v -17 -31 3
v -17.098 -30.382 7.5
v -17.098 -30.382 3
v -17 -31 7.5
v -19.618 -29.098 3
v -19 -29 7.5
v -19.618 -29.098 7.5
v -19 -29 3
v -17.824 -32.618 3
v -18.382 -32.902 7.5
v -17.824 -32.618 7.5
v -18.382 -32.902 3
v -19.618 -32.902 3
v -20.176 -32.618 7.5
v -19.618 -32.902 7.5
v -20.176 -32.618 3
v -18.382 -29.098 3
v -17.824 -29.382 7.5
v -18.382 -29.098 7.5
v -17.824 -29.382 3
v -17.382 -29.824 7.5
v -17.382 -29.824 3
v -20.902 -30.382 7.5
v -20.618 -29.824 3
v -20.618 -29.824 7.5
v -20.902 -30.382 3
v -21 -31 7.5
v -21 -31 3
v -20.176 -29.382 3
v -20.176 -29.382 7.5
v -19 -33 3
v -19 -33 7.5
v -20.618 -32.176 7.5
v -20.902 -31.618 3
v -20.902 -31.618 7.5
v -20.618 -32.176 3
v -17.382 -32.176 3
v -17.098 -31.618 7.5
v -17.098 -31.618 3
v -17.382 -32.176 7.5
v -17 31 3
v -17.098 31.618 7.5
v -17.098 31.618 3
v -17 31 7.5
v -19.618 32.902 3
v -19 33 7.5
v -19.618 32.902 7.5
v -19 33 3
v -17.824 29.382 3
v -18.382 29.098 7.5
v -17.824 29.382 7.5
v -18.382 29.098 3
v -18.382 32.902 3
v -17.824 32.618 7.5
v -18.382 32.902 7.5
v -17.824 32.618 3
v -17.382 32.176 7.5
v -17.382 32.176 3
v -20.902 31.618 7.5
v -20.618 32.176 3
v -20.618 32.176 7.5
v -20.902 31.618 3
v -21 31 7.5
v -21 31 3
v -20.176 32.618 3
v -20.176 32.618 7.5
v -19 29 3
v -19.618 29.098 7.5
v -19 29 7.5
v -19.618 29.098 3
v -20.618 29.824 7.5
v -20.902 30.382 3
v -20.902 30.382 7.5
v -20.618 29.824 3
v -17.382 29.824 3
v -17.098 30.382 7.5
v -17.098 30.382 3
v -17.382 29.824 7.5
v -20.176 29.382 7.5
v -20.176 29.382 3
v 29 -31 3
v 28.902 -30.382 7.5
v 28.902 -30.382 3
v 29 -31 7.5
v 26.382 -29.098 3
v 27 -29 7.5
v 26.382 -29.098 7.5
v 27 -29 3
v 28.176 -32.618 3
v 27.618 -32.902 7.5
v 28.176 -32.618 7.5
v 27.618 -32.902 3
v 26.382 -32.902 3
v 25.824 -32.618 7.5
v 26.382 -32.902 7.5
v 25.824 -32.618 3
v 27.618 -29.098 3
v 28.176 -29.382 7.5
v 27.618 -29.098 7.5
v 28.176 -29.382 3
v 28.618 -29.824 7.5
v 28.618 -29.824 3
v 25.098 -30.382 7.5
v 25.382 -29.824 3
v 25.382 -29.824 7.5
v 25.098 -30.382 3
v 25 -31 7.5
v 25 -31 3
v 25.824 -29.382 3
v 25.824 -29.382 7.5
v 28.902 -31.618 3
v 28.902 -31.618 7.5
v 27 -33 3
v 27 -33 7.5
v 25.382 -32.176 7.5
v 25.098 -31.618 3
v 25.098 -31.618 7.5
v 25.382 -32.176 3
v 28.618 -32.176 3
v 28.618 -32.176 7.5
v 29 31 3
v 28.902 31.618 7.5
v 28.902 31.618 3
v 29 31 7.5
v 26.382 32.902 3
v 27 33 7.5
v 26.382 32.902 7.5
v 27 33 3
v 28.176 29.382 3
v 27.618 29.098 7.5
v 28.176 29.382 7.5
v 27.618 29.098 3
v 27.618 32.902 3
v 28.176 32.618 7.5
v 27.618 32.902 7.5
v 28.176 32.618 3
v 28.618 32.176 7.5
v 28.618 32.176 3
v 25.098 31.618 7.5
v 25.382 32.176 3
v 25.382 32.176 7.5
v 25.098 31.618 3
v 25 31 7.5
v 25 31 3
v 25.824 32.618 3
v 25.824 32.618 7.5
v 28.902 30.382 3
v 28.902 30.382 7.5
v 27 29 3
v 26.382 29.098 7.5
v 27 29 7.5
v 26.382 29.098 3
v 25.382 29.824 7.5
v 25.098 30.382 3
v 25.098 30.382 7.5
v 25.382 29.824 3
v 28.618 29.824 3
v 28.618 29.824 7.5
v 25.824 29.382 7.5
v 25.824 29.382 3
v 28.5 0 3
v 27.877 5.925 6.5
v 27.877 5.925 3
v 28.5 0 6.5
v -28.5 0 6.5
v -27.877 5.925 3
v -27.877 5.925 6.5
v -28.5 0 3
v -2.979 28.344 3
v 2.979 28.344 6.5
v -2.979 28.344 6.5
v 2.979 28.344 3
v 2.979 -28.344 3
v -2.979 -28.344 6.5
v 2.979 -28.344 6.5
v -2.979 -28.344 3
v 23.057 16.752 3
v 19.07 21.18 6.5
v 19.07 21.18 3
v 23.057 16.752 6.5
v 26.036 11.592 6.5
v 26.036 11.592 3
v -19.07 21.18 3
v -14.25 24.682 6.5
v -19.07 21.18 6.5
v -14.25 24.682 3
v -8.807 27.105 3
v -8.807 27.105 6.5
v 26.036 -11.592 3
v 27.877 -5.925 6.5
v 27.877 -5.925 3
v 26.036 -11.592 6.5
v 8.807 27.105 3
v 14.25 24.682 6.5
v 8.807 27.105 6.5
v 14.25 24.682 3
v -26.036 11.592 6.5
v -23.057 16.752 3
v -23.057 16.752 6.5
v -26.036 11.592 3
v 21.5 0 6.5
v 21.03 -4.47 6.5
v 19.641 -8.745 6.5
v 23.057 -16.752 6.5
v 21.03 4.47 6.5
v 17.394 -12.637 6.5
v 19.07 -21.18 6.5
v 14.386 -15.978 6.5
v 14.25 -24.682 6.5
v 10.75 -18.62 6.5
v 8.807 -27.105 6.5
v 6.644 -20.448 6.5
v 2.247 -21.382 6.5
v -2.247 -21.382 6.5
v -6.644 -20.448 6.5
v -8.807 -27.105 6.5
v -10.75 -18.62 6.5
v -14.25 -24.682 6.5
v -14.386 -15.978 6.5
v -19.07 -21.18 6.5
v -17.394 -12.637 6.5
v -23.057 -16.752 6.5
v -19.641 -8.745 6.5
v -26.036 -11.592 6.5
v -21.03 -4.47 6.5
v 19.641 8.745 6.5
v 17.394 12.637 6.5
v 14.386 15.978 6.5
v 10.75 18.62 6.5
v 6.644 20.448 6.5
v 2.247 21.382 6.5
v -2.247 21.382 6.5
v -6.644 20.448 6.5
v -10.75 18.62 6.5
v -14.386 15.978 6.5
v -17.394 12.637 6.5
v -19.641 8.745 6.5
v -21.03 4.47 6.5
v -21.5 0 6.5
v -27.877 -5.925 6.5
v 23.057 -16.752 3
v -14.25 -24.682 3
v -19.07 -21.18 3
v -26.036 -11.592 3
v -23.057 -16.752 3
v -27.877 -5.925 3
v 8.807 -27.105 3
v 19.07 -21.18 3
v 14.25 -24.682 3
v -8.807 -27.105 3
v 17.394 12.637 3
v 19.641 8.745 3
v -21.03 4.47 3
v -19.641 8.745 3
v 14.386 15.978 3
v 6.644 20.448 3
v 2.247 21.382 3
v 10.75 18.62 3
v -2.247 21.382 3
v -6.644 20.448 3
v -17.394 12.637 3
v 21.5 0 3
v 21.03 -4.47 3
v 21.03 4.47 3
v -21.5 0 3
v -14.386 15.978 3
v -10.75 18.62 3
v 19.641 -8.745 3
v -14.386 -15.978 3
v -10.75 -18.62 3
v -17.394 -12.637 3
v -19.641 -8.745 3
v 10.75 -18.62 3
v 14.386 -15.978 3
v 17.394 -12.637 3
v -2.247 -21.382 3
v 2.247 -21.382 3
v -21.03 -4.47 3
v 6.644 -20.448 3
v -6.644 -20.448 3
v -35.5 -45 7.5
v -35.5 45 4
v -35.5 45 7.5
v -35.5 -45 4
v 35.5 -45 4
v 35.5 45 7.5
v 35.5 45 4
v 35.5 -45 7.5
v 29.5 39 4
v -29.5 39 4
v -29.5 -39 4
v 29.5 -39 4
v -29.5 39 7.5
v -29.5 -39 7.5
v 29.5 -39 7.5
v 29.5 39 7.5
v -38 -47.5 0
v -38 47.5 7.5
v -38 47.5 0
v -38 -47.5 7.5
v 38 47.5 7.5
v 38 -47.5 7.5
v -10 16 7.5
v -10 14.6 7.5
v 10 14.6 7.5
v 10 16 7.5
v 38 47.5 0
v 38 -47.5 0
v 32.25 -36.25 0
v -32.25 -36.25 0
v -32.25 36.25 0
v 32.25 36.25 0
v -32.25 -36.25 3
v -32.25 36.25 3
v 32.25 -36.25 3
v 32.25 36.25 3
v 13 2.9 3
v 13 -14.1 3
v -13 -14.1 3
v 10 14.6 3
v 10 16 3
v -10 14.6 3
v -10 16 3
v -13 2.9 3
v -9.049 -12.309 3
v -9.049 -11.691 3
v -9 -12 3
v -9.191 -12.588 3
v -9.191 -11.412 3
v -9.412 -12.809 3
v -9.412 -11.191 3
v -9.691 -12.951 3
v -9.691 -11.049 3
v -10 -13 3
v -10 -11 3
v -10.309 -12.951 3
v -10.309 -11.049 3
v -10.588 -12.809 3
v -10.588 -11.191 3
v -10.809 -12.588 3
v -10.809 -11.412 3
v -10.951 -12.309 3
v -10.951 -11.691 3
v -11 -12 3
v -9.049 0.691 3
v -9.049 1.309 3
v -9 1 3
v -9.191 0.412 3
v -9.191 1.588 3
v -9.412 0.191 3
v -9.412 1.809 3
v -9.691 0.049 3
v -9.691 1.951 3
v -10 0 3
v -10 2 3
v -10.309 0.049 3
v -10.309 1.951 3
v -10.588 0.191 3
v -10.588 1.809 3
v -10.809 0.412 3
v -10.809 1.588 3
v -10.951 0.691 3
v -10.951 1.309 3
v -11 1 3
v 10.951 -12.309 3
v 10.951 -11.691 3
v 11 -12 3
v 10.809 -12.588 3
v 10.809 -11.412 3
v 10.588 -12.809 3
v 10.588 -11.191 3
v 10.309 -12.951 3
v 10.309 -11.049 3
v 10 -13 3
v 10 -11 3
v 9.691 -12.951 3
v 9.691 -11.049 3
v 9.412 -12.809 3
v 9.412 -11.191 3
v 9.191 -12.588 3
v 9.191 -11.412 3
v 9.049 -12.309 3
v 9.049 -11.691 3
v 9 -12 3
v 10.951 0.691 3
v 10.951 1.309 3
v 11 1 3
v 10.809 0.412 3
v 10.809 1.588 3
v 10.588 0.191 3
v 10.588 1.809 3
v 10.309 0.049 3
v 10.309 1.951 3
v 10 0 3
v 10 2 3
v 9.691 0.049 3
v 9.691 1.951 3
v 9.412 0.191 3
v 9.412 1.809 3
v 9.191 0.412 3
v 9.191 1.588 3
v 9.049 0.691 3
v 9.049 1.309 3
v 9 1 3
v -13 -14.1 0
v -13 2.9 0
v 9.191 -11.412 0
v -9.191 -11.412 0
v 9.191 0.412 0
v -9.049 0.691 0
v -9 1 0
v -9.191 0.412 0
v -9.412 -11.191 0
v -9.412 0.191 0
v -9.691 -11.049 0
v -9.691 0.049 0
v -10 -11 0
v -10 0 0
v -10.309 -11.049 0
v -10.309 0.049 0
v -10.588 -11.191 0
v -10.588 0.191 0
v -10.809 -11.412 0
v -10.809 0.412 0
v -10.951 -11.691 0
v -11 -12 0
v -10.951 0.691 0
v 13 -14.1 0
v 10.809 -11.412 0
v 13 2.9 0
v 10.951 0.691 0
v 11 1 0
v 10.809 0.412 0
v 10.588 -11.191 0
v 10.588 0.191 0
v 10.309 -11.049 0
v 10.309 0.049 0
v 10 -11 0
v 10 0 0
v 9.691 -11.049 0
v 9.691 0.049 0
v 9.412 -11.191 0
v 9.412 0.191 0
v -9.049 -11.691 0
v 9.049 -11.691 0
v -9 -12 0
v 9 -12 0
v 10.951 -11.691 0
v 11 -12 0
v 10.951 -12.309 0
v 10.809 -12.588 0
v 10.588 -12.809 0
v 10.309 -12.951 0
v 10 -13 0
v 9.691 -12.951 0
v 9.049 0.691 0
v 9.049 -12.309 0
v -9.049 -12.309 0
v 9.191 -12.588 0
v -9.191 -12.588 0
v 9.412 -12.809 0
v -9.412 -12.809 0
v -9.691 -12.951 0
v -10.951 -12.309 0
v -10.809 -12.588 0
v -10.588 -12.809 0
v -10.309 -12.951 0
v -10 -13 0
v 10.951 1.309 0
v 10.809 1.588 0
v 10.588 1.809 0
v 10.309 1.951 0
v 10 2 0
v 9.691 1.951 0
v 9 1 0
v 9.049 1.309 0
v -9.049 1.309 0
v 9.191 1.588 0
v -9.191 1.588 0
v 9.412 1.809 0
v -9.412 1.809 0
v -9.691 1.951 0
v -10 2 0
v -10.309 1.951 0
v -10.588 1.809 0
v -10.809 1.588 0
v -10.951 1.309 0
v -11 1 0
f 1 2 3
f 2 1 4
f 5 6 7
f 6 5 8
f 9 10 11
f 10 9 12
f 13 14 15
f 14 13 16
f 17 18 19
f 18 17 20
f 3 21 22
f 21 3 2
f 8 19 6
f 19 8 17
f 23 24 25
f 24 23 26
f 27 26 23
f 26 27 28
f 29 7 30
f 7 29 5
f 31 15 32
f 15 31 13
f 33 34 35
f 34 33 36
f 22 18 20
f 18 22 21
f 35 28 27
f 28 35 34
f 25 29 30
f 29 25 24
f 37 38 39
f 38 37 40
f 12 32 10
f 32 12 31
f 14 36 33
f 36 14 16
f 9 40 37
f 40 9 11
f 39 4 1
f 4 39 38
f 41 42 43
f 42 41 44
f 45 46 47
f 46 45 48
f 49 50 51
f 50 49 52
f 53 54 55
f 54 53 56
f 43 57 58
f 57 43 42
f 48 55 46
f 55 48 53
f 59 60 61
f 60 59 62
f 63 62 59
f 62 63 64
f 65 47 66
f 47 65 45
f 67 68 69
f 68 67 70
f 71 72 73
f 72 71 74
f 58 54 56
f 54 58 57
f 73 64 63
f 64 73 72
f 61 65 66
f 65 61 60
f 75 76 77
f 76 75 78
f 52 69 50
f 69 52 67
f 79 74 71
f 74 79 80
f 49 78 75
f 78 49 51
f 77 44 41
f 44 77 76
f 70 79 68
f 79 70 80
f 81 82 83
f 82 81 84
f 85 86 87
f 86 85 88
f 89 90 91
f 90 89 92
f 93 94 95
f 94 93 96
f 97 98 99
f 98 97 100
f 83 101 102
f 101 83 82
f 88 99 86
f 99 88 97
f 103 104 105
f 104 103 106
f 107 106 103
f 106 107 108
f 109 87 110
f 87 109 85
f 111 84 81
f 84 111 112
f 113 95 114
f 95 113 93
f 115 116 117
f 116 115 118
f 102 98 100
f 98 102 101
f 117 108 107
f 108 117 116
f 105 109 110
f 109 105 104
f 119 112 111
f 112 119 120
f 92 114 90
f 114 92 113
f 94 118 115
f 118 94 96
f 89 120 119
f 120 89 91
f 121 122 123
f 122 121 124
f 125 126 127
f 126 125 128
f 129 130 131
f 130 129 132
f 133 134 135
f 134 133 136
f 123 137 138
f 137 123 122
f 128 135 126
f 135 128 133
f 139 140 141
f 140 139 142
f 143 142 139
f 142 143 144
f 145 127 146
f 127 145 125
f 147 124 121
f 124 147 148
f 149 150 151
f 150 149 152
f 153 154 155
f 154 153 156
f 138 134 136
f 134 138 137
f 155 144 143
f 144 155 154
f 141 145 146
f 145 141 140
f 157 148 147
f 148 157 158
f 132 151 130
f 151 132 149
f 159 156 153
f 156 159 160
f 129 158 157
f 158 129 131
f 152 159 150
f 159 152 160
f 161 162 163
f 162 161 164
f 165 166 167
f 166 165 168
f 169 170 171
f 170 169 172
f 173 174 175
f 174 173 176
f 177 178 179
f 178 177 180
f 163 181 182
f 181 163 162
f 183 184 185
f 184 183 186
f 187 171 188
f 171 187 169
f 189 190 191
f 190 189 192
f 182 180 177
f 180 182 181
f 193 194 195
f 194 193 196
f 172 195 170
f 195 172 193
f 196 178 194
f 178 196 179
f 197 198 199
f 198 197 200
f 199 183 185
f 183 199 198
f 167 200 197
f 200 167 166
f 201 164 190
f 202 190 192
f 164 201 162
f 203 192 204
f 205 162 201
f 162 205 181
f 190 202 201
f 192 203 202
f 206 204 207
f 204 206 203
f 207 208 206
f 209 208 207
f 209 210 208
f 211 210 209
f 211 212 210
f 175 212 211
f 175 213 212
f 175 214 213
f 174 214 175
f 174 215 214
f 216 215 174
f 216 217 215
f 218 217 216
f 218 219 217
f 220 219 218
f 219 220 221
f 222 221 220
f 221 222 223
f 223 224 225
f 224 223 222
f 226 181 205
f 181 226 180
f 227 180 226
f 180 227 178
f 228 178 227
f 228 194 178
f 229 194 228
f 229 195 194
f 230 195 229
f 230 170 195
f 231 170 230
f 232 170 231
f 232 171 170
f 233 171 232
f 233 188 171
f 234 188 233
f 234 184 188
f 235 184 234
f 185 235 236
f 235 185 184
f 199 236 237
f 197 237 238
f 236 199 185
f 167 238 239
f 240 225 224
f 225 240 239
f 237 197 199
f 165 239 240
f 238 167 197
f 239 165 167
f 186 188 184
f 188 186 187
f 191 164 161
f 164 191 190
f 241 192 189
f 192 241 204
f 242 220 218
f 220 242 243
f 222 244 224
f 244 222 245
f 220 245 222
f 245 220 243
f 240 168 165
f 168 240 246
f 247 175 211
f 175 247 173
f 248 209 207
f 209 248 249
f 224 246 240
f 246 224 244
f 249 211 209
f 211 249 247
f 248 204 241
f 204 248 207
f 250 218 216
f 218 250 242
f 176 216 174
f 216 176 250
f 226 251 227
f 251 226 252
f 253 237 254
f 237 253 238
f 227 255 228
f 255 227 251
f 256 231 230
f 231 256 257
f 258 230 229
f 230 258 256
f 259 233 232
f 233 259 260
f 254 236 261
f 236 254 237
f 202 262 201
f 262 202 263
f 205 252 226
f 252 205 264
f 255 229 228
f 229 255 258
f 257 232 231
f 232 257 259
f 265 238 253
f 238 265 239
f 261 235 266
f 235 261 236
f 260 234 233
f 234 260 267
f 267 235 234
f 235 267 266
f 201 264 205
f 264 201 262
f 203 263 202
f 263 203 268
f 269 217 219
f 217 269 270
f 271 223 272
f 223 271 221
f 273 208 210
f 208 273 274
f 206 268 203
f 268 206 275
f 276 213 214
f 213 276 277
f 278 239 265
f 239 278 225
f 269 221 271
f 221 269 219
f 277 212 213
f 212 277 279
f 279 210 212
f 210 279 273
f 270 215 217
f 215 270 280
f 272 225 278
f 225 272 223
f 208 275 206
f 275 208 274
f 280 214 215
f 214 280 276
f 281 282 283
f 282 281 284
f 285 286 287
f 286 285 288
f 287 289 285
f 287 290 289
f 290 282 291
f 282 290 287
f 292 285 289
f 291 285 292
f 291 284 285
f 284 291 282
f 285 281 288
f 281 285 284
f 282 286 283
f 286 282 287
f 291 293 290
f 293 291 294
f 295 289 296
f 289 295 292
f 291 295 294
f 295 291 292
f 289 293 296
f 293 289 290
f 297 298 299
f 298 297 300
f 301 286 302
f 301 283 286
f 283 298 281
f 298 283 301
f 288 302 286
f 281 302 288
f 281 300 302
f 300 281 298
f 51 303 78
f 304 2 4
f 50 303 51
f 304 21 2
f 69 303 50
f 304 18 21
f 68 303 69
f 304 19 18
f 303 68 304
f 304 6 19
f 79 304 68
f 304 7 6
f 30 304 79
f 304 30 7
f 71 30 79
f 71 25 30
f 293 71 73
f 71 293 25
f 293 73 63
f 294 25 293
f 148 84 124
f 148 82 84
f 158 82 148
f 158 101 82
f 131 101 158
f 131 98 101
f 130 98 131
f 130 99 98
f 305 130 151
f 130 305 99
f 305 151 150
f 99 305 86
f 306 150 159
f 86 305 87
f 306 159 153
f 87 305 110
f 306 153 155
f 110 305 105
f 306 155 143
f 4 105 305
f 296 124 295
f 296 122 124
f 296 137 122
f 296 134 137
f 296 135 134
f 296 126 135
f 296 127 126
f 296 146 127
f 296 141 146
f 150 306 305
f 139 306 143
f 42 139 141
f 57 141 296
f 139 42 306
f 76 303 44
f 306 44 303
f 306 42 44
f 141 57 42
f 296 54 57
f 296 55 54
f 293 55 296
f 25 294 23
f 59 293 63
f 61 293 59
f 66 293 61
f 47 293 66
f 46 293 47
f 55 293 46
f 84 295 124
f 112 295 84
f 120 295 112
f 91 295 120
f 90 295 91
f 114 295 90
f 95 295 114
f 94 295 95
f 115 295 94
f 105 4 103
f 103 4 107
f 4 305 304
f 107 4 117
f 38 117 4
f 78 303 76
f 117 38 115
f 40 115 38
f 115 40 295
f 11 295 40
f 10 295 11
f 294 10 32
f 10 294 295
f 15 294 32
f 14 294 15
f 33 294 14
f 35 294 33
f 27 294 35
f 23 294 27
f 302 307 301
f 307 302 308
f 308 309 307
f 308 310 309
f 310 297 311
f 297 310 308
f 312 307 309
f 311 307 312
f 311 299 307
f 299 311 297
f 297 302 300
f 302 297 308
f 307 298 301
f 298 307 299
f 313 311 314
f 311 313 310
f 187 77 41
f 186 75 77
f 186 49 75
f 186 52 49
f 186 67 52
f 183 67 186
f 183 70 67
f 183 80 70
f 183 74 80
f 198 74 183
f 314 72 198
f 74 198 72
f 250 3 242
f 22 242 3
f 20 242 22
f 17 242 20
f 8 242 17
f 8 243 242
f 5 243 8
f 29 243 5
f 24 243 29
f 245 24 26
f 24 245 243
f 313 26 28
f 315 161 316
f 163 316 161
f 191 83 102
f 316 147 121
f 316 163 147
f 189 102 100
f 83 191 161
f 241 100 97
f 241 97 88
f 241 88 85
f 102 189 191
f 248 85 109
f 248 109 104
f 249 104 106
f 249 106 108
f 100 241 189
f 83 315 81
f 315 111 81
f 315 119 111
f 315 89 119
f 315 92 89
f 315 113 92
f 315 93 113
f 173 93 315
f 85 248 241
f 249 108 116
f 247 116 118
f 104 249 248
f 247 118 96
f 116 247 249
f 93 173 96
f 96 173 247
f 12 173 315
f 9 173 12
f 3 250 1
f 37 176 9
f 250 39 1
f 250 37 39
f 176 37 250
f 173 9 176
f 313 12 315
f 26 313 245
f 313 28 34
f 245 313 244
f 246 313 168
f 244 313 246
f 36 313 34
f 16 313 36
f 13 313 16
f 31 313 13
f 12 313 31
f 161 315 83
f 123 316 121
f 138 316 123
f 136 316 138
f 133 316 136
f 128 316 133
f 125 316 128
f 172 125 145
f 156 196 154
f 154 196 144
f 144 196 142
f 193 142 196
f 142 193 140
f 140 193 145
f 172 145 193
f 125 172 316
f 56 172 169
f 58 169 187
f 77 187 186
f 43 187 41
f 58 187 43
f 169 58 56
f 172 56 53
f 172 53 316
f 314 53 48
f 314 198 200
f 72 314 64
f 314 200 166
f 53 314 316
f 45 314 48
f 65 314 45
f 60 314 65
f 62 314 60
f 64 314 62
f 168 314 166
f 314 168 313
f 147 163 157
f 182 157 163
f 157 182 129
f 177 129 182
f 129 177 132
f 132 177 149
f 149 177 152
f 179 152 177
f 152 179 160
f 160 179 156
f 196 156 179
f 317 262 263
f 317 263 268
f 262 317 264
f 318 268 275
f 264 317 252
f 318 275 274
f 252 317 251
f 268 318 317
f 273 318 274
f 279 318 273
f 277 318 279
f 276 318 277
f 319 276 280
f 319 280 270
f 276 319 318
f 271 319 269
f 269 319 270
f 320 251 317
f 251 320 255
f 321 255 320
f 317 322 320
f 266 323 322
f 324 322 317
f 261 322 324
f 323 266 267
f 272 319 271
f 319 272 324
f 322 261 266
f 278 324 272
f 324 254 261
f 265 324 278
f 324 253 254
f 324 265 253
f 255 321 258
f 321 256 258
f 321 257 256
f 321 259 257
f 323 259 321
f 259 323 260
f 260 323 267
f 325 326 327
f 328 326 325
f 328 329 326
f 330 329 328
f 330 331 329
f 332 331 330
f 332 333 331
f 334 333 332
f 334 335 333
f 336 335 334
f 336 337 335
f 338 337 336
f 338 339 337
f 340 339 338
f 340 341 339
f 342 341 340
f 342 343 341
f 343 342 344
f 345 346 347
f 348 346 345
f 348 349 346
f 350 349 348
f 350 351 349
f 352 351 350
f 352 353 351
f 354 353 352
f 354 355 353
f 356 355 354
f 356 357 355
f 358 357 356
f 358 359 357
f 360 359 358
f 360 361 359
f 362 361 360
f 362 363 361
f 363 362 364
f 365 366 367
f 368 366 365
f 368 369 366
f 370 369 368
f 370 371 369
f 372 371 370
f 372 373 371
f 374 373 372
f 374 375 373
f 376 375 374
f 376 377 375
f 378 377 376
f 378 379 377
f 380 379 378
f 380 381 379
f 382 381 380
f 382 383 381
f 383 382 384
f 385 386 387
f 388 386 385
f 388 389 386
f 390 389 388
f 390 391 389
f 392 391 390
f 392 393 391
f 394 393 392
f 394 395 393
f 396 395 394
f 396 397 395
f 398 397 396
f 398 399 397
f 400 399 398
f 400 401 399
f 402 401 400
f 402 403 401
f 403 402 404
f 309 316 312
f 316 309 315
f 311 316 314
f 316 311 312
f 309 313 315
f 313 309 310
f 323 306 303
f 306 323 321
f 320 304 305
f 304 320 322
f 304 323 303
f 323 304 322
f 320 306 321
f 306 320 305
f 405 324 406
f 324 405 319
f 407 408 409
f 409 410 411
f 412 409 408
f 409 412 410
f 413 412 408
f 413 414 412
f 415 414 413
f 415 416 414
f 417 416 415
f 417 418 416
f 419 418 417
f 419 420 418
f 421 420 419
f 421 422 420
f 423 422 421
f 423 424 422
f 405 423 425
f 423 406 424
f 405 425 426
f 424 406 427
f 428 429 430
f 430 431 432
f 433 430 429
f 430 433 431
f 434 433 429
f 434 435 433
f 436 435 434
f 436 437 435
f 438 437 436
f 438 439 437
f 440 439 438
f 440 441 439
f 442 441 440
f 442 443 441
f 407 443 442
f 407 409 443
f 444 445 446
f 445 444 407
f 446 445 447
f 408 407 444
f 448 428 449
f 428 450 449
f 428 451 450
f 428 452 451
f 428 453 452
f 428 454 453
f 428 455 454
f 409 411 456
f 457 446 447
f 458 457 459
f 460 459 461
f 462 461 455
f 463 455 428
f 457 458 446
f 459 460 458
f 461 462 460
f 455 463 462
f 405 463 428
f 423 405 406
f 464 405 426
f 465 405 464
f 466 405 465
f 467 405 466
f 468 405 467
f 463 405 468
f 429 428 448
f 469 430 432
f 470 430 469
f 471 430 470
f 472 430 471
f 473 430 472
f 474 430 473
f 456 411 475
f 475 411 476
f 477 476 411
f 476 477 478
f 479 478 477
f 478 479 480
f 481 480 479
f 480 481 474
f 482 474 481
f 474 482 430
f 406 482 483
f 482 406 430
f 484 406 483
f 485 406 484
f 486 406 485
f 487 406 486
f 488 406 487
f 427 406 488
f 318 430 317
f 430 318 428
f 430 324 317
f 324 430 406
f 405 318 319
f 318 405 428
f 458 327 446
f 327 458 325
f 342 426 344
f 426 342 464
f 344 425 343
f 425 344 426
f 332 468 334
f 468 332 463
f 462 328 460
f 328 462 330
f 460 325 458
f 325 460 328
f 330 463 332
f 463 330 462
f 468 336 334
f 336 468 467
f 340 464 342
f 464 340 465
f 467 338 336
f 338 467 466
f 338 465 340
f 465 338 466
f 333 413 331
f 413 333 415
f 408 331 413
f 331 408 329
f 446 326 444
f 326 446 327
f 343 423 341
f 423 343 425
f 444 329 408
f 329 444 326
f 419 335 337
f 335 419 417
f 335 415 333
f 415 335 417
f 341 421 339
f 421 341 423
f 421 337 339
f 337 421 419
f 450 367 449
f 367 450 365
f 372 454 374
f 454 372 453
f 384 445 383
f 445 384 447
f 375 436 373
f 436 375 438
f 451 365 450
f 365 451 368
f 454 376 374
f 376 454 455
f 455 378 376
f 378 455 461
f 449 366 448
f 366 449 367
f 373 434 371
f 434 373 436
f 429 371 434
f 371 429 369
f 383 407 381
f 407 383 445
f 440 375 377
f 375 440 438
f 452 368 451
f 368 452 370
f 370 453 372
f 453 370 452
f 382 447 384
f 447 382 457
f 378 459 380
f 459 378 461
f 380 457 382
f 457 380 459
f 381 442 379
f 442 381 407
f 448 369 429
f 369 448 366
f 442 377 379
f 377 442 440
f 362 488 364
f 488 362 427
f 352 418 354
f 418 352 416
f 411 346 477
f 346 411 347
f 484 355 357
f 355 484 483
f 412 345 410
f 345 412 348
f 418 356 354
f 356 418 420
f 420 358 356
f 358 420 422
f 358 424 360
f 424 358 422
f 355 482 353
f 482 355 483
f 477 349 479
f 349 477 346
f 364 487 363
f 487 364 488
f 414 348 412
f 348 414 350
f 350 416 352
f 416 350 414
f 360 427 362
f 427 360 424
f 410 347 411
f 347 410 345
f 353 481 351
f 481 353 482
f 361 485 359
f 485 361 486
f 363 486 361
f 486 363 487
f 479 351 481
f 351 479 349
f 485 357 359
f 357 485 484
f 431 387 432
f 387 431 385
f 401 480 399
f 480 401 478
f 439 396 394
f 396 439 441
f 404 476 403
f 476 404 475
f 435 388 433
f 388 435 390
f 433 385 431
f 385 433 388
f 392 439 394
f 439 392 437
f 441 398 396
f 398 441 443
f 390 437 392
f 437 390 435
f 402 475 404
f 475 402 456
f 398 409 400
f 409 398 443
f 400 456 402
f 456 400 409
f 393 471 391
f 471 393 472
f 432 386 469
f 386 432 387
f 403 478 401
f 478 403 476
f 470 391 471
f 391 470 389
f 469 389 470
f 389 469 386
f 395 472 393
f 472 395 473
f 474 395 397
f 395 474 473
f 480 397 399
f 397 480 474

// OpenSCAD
// file: alsaCam.scad
//creaAlsaCamara(5);
alsaCamTorR = 1;

// creaAlsaCamara(10);

module creaAlsaCamara( intAlsaCamH )
{    
    difference(){

        translate([-13,-2.9,0])
        cube([26,17,intAlsaCamH]);

        //Tornillos camara
        translate([-10,12,-0.1])
        cylinder(r=alsaCamTorR,intAlsaCamH+0.4,$fn=20);
        translate([10,12,-0.1])
        cylinder(r=alsaCamTorR,intAlsaCamH+0.4,$fn=20);
        translate([-10,-1,-0.1])
        cylinder(r=alsaCamTorR,intAlsaCamH+0.4,$fn=20);
        translate([10,-1,-0.1])
        cylinder(r=alsaCamTorR,intAlsaCamH+0.4,$fn=20);

    }
}
// file: ../../Letras.scad
if(0)
{
logo(10,2,2,4);
}

//dMin(10,2,2);
module dMin(iSize,iPared,iH)
{
    translate([iPared*1.59,0,0])
    {
    cMin(iSize*.53,iPared*.53,iH);
    translate([iPared*.75,0,0])
    cube([iPared,iSize,iH]);
    }
}

module tMin(iSize,iPared,iH)
{
  iSize = iSize*0.9;
  translate([0,iSize*.1,0])
  {
  difference()
  {
    hull()
    {
      translate([-iPared*.7,0,0])
      cube([iPared,iSize*1,iH]);

      cube([iSize*.4,iPared,iH]);

      translate([-iPared*.3,0,0])
      cylinder( r=(iPared*0.6), iH, $fn=100 );     
    }
    
    translate([iPared,iPared,-0.1])
    hull()
    {
      translate([-iPared*.7,0,0])
      cube([iPared,iSize*1,iH]);

      cube([iSize*.4,iPared,iH]);

      translate([-iPared*.35,0,0])
      cylinder( r=(iPared*0.6), iH+2, $fn=100 );     
    }
    
    translate([iSize*.28,-iSize*.4,-0.1])
    cube([iSize,iSize,iH+2]);
    
  }
  
  translate([-(iSize*.35),iSize*.6,0])
  cube([iSize*.6,iPared,iH]);
  
  }
        
}


module eLe(iSize,iPared,iH)
{
    translate([-iPared*.7,0,0])
    cube([iPared,iSize*1,iH]);
    
    cube([iSize*.4,iPared,iH]);
}

module hMin(iSize,iPared,iH)
{
    puente(iSize,iPared,iH);
    
    translate([-iPared*.7,0,0])
    cube([iPared*.85,iSize*1,iH]);
   
}

module nMin(iSize,iPared,iH)
{
    puente(iSize,iPared,iH);
    
    translate([-iPared*.7,0,0])
    cube([iPared*.85,iSize*.57,iH]);
   
}

module cMin(iSize,iPared,intcH)
{
    translate([0,iSize*0.6,0])
    {
    difference()
    {
        oMin(iSize, intcH);
        
        translate([0,-iPared*1.15,-0.1])
        cube([iSize*.8,iPared*2.2,intcH+1]);
    }
    }
}




module Te(iSize, iPared)
{
    translate([-(iPared*1/2),0,0])
    cube( [iPared*1, iSize, leth] );
    
    translate([-(iSize*0.8)/2,iSize-iPared*1,0])
    cube( [iSize*0.8,iPared*1, leth] );
}

module oMin(intoSize, intoH)
{
  difference()
  {
    cylinder( r=(intoSize*0.6), intoH, $fn=100 );
    
    translate([0,0,-0.1])
    cylinder( r=(intoSize*0.3), intoH*2, $fn=100 );
    //cylinder( r=(iSize/2)-iPared, iH+1, $fn=100 );
  }
}



module eMin(iSize,iPared,inteH)
{
    rotate([0,0,10])
    translate([0,iSize*0.0,0])
    {
    difference()
    {
        translate()
        cMin(iSize, iPared*1.8, inteH);
        
        translate([0,-iPared*1.3,-0.1])
        cube([iSize*.8,iPared,inteH+1]);
    }
    
    rotate([0,0,15])
    translate([-iSize*.15,iPared*4,0])
    cube([iSize*.9,iPared*3.5,inteH]);
    }
}

module De(iSize,iPared,iH)
{
  translate([0, iSize/2, 0])
  difference()
  {
      mediaLuna(iSize, iH);
      
      translate([-(iSize*0.08), 0, -0.5])
      mediaLuna(iSize*0.8, iH+1);
  }
  
  translate([0,iPared*.2,0])
  cube([iPared*.8, iSize*.9, iH]);
}


module mediaLuna(iSize, iH)
{
  difference()
  {
    cylinder( r=iSize/2, iH, $fn=100 );
      
    translate([-iSize, -iSize/2, -0.1])
    cube(iSize,iSize,iH);
  }
}

module puente(iSize,iPared,iH)
{
    
    difference()
    {
        
    hull()//Exterior
    {
        translate([iSize*0.37,iSize*0.45,0])
        cylinder(r=iPared*.5,iH,$fn=50);
        
        cube([iSize*0.45,iSize*0.51,iH]);
    }
    
    translate([-iPared*.8,-iPared*.8,-0.1])
    hull()//Interior
    {
        translate([iSize*0.42,iSize*0.5,0])
        cylinder(r=iPared*.3,iH,$fn=50);
        
        cube([iSize*0.47,iSize*0.47,iH+1]);
    }
    
    }
}

module oCua(iSize,iH)
{
    cube([iSize*0.4,iSize*0.4,iH]);
    
    translate([iSize*0.5,0,0])
    difference()
    {
        cube([iSize*0.15,iSize*0.6,iH]);
        
        translate([-iSize*0.15,-iSize*0.11,-0.1])
        rotate([0,0,-45])
        cube([iSize*0.25,iSize*0.6,iH*2]);
        
        
        translate([-iSize*0.35,iSize*0.45,-0.1])
        rotate([0,0,-45])
        cube([iSize*0.25,iSize*0.6,iH*2]);
    }
    
    translate([-iSize*.05,iSize*0.06,0])
    difference()
    {
        translate([-iSize*.1,iSize*.445,0])
        cube([iSize*.8,iSize*0.15,iH]);
        
        translate([iSize*0.3,iSize*0.3,-0.1])
        rotate([0,0,-45])
        cube([iSize*0.25,iSize*0.6,iH*2]);
        
        translate([-iSize*0.28,iSize*0.45,-0.1])
        rotate([0,0,-45])
        cube([iSize*0.25,iSize*0.6,iH*2]);

    }
    
    
    
    
}

module logoSimple(letsize,letpared,leth,letoffset)
{
    //De(letsize,letpared,leth);
    dMin(letsize,letpared,leth);
    
    translate([(letsize*0.59)+(1*letoffset),letsize*0,0])
    oCua(letsize,leth);
    
    translate([(letsize*1.5)+(2*letoffset),0,0])
    tMin(letsize,letpared*.8,leth);   
    
    translate([(letsize*2.1)+(3*letoffset),0,0])
    eMin(letsize*.53,letpared*.3,leth);
    
    translate([(letsize*2.8)+(4*letoffset),0,0])
    cMin(letsize*.53,letpared*.53,leth);
    
    translate([(letsize*3.3)+(5*letoffset),0,0])
    hMin(letsize,letpared,leth);

    
}

module logo(letsize,letpared,leth,letoffset)
{
    //De(letsize,letpared,leth);
    dMin(letsize,letpared,leth);
    
    translate([(letsize*0.59)+(1*letoffset),letsize*0,0])
    oCua(letsize,leth);
    
    translate([(letsize*1.5)+(2*letoffset),0,0])
    tMin(letsize,letpared*.8,leth);   
    
    translate([(letsize*2.1)+(3*letoffset),0,0])
    eMin(letsize*.53,letpared*.3,leth);
    
    translate([(letsize*2.8)+(4*letoffset),0,0])
    cMin(letsize*.53,letpared*.53,leth);
    
    translate([(letsize*3.3)+(5*letoffset),0,0])
    hMin(letsize,letpared,leth);
    
    translate([(letsize*4)+(6*letoffset),leth*.75,0])
    cylinder(r=letpared*.75,leth,$fn=50);
    
    translate([(letsize*4.45)+(7*letoffset),0,0])
    nMin(letsize,letpared,leth);
    
    translate([(letsize*5.3)+(8*letoffset),0,0])
    eMin(letsize*.5,letpared*.3,leth);
    
    translate([(letsize*5.85)+(9*letoffset),0,0])
    tMin(letsize,letpared*.8,leth);

    
}
// file: Frame.scad
include <Diffracter.scad>

frameW = 80-1.5;//Real hole width - burr
frameH = 75-1.5;//Real hole height - burr
frameD = 2.5;

winW = frameW - 8;
winH = frameH - 16;

slideW = winW + 4;
slideH = winH + 10;
slideD = 0.8;

//Activate this to display
if(false)
{
  Frame();
}

module Frame()
{
difference()
{

  translate([-frameW/2,-frameH/2,0])
  cube([frameW,frameH,frameD]);

  //areaSello();
  translate([-winW/2,-winH/2,-0.1])
  cube([winW,winH,frameD*2]);

  translate([-slideW/2,-slideH/2,frameD-slideD])
  cube([slideW,slideH,2]);

}
}


module areaSello()
{
  //cylinder(r=(raspSellR/2)-1,frameD);

  translate([-(frameW)/2,-(frameH)/2,0])
  cube([frameW,frameH,frameD]);
}
// file: Diffracter.scad
//include <Tapa.scad>
include <../../library.scad>


bigW = 88;
ori = bigW/2;
raspSellR = 59;
tuboH = 140;
H = 18.5 + 9;
selloH = 7;
tornR = 2;

huecoPared = 12;
huecoH = 22;
selloHembraRadio=40;

//Activate this to display
if(0)
{
//translate([0,0,bigW/2])
//rotate([0,90,0])
diffracter();


//soporteCylinder(radio=25.2,altura=3.8);

}


module diffracter(){	

difference(){

//Bloque
translate([-bigW/2,-bigW/2,0])
cube([bigW,bigW,H]);

/*
translate([
						-(bigW-huecoPared)/2,
						-(bigW-huecoPared)/2,
						(huecoH/2)
					])
		cube([
					bigW-huecoPared,
					bigW-huecoPared,
					H-huecoH]
				);*/


//Diffractador
translate([-37.25,-40,-0.1])
cube([74.5,80,5.6]);

//Macro
translate([0,0,5.4])
cylinder(r=(74.5/2),8.2,$fn=100);

//Sello de raspberry
//translate([0,0,-0.1])
//cylinder(r=(raspSellR/2)+1,2);

//Tubo
//translate([0,0,-0.1])
//cylinder(r=(52/2),200);

//Tornillos abajo
translate([-ori+4,-ori+4,-0.1])
cylinder(r=tornR,20);
translate([ori-4,-ori+4,-0.1])
cylinder(r=tornR,20);
translate([-ori+4,ori-4,-0.1])
cylinder(r=tornR,20);
translate([ori-4,ori-4,-0.1])
cylinder(r=tornR,20);

//Hueco
cylinder(r=36,H+1);

//Tornillos caja
translate([0,0,(tuboH/2)-7])
rotate([0,90,0])
tornillosArriba();

//Tornillo tripie
translate([-ori-0.1,0,(tuboH/2)+7])
rotate([0,90,0])
cylinder(r=5/2,5.31);

//Sello hembra
//translate([0,0,H-3])
//cylinder(r=selloHembraRadio,4);

}

//Sello cobertura
//translate([0,0,H-1])
//huyoMasPared(58,3,3);


}
// file: Camara.scad
include <Sello35GradosCorto.scad>
include <alsaCam.scad>
include <../../library.scad>


camaraPared  = 8;

tuboSellDiam = 52+3;//52mm+2 holgura
tuboSellR = tuboSellDiam / 2;
tuboSellP = 3.5;//Profundidad del sello


camCableX = 1.4;
camCableY = 20;

if( 0 )
{
    creaCamBase();
}


module creaCamBase()
{
    difference()
    {
        //Pared
        translate([-(bigW-2)/2,-(bigW-2)/2,0])
        cube( [(bigW-2),(bigW-2),camaraPared] );
        
        //Sello hembra
        translate([0,0,camaraPared-4])
        huyoMasPared(68,7,4.2,$fn=100);
        //Ahorro de material
        translate([0,0,camaraPared-4])
        huyoMasPared(42,11,4.2);
        
        //Pasa cable
        pasaCable();
        
        //Tornillos
        tornPass();
        
        
    }
    
    //translate([0,0,10])
    creaAlsaCamara( 25 );
}

module pasaCable()
{
    //Pasa cable
    rotate([0,0,90])
    translate([-15, -camCableY/2, -0.1])
    cube( [camCableX, camCableY, 20] );
}
// file: ../../library.scad
module tubo(
	h/*Altura*/,
	w/*Pared*/,
	d/*Diametro*/
){
  difference()
  {
    cylinder(r=(d/2), h);
    translate([0,0,-0.1])
    cylinder(r=(d/2)-(2*w), h+0.2);
  }
}

module huyoMasPared(
	d/*Diametro del hoyo*/,
	w/*Pared*/,
	h/*Altura*/,
){
  difference()
  {
    cylinder(r=((d+(2*w))/2), h);
    translate([0,0,-0.1])
    cylinder(r=(d/2), h+0.2);
  }
}

module cuboMasPared(
    w1, //Largo
    w2, //Ancho
    p1, //Pared
    p2, //Pared
    h   //Alto
)
{    
    difference()
    {
        translate([-(w1+(p1*2))/2,-(w2+(p2*2))/2,0])
        cube([(w1+(p1*2)),(w2+(p2*2)),h]);
        
        translate([-w1/2,-w2/2,-0.2])
        cube([w1,w2,h*2]);
        
    }
    
    
}

soporteW = 0.7;

module soporteCylinder()
{
  difference()
  {
	cylinder(r=radio,altura);

	translate([0,0,-0.1])
	cylinder(r=radio-soporteW,altura+0.2);
  }

  if(true){
  difference()
  {
	cylinder(r=radio+0.75,1);

	translate([0,0,-0.1])
	cylinder(r=radio-0.75,1.25);
  }}

}

module soporteOval()
{
  difference()
  {
	oval(w=ancho, h=largo, height=alto, center = false);

	translate([0,0,-0.1])
	oval(ancho-soporteW, largo, alto+0.2);
  }

  difference()
  {
	oval(w=ancho+1, h=largo+1, height=1, center = false);

	translate([0,0,-0.1])
	oval(w=ancho-1, h=largo-1, height=1.25, center = false);
  }

}


module oval(w,h, height, center = false)
{
  scale([1, h/w, 1]) cylinder(h=height, r=w, center=center);
}
// file: Sello35GradosCorto.scad
include <Diffracter.scad>
include <Frame.scad>
include <../../library.scad>

include <../../Letras.scad>

// 3.15° for every 100 l/mm

angulo = 35;

coberW = bigW+6;
coberH = 6;
coberOffset = 9;//Posición del tubo
coberOffset2 = 5;//Altura del tubo (-7)->(-8)
cobeSellH = 4;
cobeSellW1 = 7;
cobeSellW2 = 7;

torrRadio = 2;
conoRadio = 38.8;

camCubeW = 62;
camCubeH = 70;
camCubeD = 7;



//soporteCylinder(radio=29,altura=coberH);	
//soporteOval(ancho=28, largo=25, alto=coberH);
//soporteCylinder(radio=34,altura=coberH);
//frameSello();

if(false)
{
    translate([0,coberW/2,0])
    creaSello();
    
    
}

// translate([33,25,cobeSellH+1.1])
// %cube([40,40,1]);


module creaCamBase()
{
    difference()
    {
        //Pared
        cube( [camCubeW,camCubeH,camCubeD] );
        
        //Tornillos
        tornillosBaseCamara( camCubeD + 0.4 );
        
    }
}

module tornillosBaseCamara( intBaseCamTorH )
{
    translate( [12,4,-0.2] )
    huecoParaTornillo(intBaseCamTorH);        
    translate( [12,camCubeH-4,-0.2] )
    huecoParaTornillo(intBaseCamTorH);
    
    translate( [camCubeW-4,4,-0.2] )
    huecoParaTornillo(intBaseCamTorH);
    
    translate( [camCubeW-4,camCubeH-4,-0.2] )
    huecoParaTornillo(intBaseCamTorH);
}

module creaSello()
{
    difference()
    {
    createAll();

    translate([-100,-100,-200])
    cube([200,200,200]);
    
    translate([bigW*.22,bigW*.33,coberH-0.5])
    oCua(24,2);

    }   
}

module createAll()
{

difference()
{
areaExterna();

//Tubo Interno
translate([23-coberOffset,0,-32.9+coberOffset2])
rotate([0,-angulo,0])/*3.15 cada 100 (antes 40)*/
//cylinder (r1 = conoRadio, r2 = (51.7-6)/2, h = 70, $fn = 100);
cylinder (r1 = conoRadio, r2 = (51.7-8)/2, h = 70, $fn = 100);

//Cuadro de la pared
creaContorno();
translate([-bigW/2,-bigW/2,-40+coberH-6])
cube([bigW,bigW,40]);

//Tornillos
tornPass();

//Contorno
creaContorno();

}

//creaSelloMacho();

}



module huecoParaTornillo( intTorH )
{
    cylinder(r=torrRadio,intTorH,$fn=20);
}

module huecoParaCabezaTornillo( cabezaR,  intTorH )
{
    cylinder(r=cabezaR,intTorH,$fn=20);
}



module creaContorno()
{

 difference()
 {
   translate([-(coberW-4.5)/2,-(coberW-4.5)/2,-3])
   cube([(coberW-4.5),(coberW-4.5),coberH]);

   translate([-(coberW-15)/2,-(coberW-23)/2,-3])
   cube([(coberW-15),(coberW-23),coberH]);
 }
}



module creaSelloMacho()
{

 translate([0,0,coberH-cobeSellH])
 difference()
 {
  areaSello(frameD=cobeSellH);

  translate([-(frameW-cobeSellW1)/2,-(frameH-cobeSellW2)/2,-0.1])
  cube([frameW-cobeSellW1,frameH-cobeSellW2,cobeSellH+1]);
 }
}

module areaExterna()
{
//Cobertura
translate([-coberW/2,-coberW/2,0])
cube([coberW,coberW,coberH]);

//TuboExterno
translate([23-coberOffset,0,-33+coberOffset2])
rotate([0,-angulo,0])/*3.15 cada 100 (antes 40)*/
//cylinder(r=(51.7)/2,48);
cylinder (r1 = conoRadio+3, r2 = 51.7/2, h = 70, $fn = 100);

//Áre para sellar la cámara
translate([-45.5,-camCubeH*.5,4])
rotate([0,-angulo,0])
creaCamBase();
    
}


module recorteOval()
{
  translate([-0.4,0,-1.9])
  oval(26.8,22.9, 15, center = false);
}

module tornPass()
{
translate([-ori+4,-ori+4,-0.1])
cylinder(r=torrRadio,30);
translate([ori-4,-ori+4,-0.1])
cylinder(r=torrRadio,30);
translate([-ori+4,ori-4,-0.1])
cylinder(r=torrRadio,30);
translate([ori-4,ori-4,-0.1])
cylinder(r=torrRadio,30);
}
// main file
include <Sello35GradosCorto.scad>
include <../../library.scad>
include <Camara.scad>



//**************************
// Importados de la creación
// de la caja de raspberry pi
//**************************
pared = 4;
pared2 = 2*pared;
medPared = pared/2;

raspX = 56;//58
raspY = 85;//85
raspZ = 15.5;//15.5
raspD1 = 3.45;
raspDP = 22.5;
raspD2 = raspDP+pared2;//Altura lados
raspAlza = 2.6;//2.6
//**************************

cajaBaCamH = 5;
camCableX = 1.4;

creaCaja();

//
//translate([20,-46,-5])
//%cube([13,13,13]);

module creaCaja()
{
    difference()
    {
        //Toda el área
        translate([0,0,0])//Pone a nivel
        camBaCajAreaExterna();
        
        //Tornillos
        translate([-(camCubeW/2),-(camCubeH/2),-0.1])
        tornillosBaseCamara( pared2 + 0.4 );
        
        //Cabeza de tornillos
        //translate([-(camCubeW/2),-(camCubeH/2),6])
        //tornillosBaseCamaraCabeza(4,6);
        
        //Sello cuadrado
        translate([
                    -(camCubeW+2.5)/2,
                    -(camCubeH+2.5)/2,
                    -camaraPared+4])
        cube( [camCubeW+2.5,camCubeH+2.5,camaraPared-1] );
        
        //Sello hembra
        huyoMasPared(43,7,6.5);
        
        //Pasa Cable
        pasaCable();
        
        //Sello cuadro
        translate([0,0,4])
        cuboMasPared(
                        camCubeW-3,
                        camCubeH+8//10
                        ,6//4
                        ,6//5
                        ,5);//5
                
    }
    
    
    
    //Soporte macho
    //huyoMasPared(43,2,5.5);
    
    //Alsa de la cámara
    translate([0,0,cajaBaCamH])
    rotate([180,0,0])
    creaAlsaCamara( cajaBaCamH );
    
    
    
    /*
    difference()
    {
        //La cámara
        translate([0,0,camaraPared])
        rotate([180,0,0])
        creaCamBase();
        
        //Pasa Cable
        pasaCable();
        
        //Cabeza de tornillos
        translate([-(camCubeW/2),-(camCubeH/2),4.2])
        tornillosBaseCamaraCabeza(4,6);
    }
    */
    
    
    
    
    
    

    
}



module pasaCable()
{
    //Pasa cable
    rotate([0,0,-90])
    translate([-(camCubeW/2)+15, -camCableY/2, -0.1])
    cube( [camCableX, camCableY, 20] );
}

module camBaCajAreaExterna()
{
    //Pared
    translate([-((camCubeH+6)/2),-(raspY/2)-(pared/2)-3, 0])
    cube([camCubeH+6,raspY+pared2+2,pared+3.5]);
    
    //Caja de raspberry pi
    //translate([-(raspX/2)+3,(-raspY/2),4])
    //camaraBaseCaja();
    
    
    
    
    //cube( [camCubeW,camCubeH,camaraPared] );
    
}



module camaraBaseCaja()
{

difference()
{
bigCaja();

translate([-medPared,-medPared, raspD2-pared+0.1])
cube([raspX+pared,raspY+pared,pared]);

translate([2.4,-medPared-(medPared/2),pared+raspAlza+1.3])
cube([16,medPared,11.3]);

translate([2.4,-pared-(medPared/2)-0.1,pared+raspAlza+1.3])
cube([16,medPared,11.3]);

}
}



module bigCaja()
{
crearRaspCard();
ladoConnector();
ladoUSB();
ladoMiniSD();
ladoPines();
}


module ladoPines()
{
translate([raspX,-pared,0])
cube([pared,raspY+pared2,raspD2]);
}


module ladoMiniSD()
{
difference()
{
translate([-pared,raspY,0])
cube([raspX+pared+1,pared,raspD2]);

translate([(raspX/2)-8,raspY-1,pared])
cube([15,medPared+1,50]);
}

}

module ladoUSB()
{

difference()
{

translate([-pared,-pared,0])
cube([raspX+pared+1,pared,raspD2]);

translate([1,-medPared,pared+raspAlza])
cube([54,medPared+0.1,22]);

}

}





module ladoConnector()
{


translate([-pared,-1,raspD2-pared])
cube([medPared,raspY+2,pared]);

difference()
{
translate([-pared,-1,0])
cube([pared,raspY+2,raspD2]);

translate([-pared-1,raspY-16.4,5.8])
cube([2.2,12,8]);

translate([-2,27.5,pared+2])
cube([3.1,35,25]);

translate([-1,68.5,pared+2])
cube([2,12,25]);

translate([-pared+1,raspY-14.4,pared+raspAlza+1.4])
{
	cube([1,8,3.3]);
	translate([1.1,0,0])
	cube([1,8,3.3]);
}

}

}







module crearRaspCard()
{
	cube([raspX,raspY,pared]);
	cuatroTorn(3);

	translate([-1,-1,0])
	cube([raspX+2,raspY+2,pared]);

}



module cuatroTorn(radio)
{
	translate([raspD1,raspY-raspD1,0])
	cylHue(pared+raspAlza,radio);

	translate([raspX-raspD1,raspY-raspD1,0])
	cylHue(pared+raspAlza,radio);

	translate([raspD1,23.5,0])
	cylHue(pared+raspAlza,radio);

	translate([raspX-raspD1,23.5,0])
	cylHue(pared+raspAlza,radio);

}

module cylHue(h,radio){
	difference()
	{
		cylinder(r=radio,h,$fn=20);
		translate([0,0,pared-1])
		cylinder(r=1.5,h,$fn=20);
	}
}

module tornillosBaseCamaraCabeza( intCabezaR, intCabezaH )
{
    translate( [12,4,-0.2] )
    huecoParaCabezaTornillo(intCabezaR, intCabezaH);        
    translate( [12,camCubeH-4,-0.2] )
    huecoParaCabezaTornillo(intCabezaR, intCabezaH);        
    
    translate( [camCubeW-4,4,-0.2] )
    huecoParaCabezaTornillo(intCabezaR, intCabezaH);        
    
    translate( [camCubeW-4,camCubeH-4,-0.2] )
    huecoParaCabezaTornillo(intCabezaR, intCabezaH);        
}
